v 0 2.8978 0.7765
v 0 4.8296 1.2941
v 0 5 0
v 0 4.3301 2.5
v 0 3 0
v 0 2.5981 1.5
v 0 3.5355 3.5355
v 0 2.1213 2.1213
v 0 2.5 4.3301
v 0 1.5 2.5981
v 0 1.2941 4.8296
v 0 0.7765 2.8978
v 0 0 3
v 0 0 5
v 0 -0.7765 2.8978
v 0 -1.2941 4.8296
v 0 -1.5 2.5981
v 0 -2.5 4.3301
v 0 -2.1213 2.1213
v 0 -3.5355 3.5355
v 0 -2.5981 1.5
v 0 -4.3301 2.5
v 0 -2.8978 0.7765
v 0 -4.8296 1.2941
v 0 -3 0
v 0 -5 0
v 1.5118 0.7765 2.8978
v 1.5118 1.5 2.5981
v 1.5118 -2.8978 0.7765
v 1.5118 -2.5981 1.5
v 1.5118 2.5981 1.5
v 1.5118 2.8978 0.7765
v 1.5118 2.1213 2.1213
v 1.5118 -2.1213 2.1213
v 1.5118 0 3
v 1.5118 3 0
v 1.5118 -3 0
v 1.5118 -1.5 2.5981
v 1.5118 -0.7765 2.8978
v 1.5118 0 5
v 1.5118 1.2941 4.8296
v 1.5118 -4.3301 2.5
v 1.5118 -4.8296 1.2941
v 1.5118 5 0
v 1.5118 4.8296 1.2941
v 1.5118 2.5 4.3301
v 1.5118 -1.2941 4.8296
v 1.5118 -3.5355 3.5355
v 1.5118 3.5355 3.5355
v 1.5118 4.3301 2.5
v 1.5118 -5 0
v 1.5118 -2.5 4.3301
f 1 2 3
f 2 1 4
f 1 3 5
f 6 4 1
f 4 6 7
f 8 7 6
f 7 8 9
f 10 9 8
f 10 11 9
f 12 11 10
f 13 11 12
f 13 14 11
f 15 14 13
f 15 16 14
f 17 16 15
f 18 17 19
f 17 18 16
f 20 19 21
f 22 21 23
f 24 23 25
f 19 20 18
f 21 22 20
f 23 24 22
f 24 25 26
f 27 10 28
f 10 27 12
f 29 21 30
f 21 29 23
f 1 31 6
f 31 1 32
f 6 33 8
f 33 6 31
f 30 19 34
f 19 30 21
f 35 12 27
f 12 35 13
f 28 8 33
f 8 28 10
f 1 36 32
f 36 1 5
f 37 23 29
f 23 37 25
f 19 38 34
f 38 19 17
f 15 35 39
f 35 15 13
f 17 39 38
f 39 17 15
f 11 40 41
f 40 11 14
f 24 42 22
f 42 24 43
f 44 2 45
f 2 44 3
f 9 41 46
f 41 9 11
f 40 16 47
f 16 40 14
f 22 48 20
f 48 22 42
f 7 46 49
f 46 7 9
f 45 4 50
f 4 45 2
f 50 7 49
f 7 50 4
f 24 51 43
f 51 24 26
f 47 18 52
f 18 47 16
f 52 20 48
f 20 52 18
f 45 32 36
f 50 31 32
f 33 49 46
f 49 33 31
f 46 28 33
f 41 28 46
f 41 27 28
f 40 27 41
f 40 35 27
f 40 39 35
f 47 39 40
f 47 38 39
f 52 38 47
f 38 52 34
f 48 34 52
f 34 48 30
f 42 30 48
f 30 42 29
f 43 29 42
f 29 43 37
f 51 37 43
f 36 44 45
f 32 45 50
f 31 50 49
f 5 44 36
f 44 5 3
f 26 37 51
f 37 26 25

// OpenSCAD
// file: ../build_environments.scad
// build_environments.scad: modules to build level sections
//

module pool(diameter=10.0, wall_height=2.0, step_width=3.0, connections=[])
{
    difference() {
        union() {
        difference() {
            cylinder(h=0.5,r1=diameter+step_width,r2=diameter+step_width,$fn=48);
            translate([0,0,-0.1])
                cylinder(h=0.7,r1=diameter,r2=diameter,$fn=48);
        }
        difference() {
            cylinder(h=wall_height,r1=diameter+step_width+1.0,r2=diameter+step_width+1.0,$fn=48);
            translate([0,0,-0.1])
                cylinder(h=wall_height+0.2,r1=diameter+step_width,r2=diameter+step_width,$fn=48);
        }
        }
    
        for (c = connections)
        {
            rotate([0,90,0]) {
                angle = atan2(c[1],c[0]);
                rotate([-angle,0,0]) {
                    cylinder(h=diameter+5.0,r1=c[2],r2=c[2],$fn=48);
                }
            }
        }
    }
}

module straight(length=10.0, width=2.0, dy1=0.0, dy2=0.0, dz=0.0)
{
    dims = [0, 0, 0, 0, 0, (dz/length)];
    matrix = [
        [ 1, dims[0], dims[1], 0 ],
        [ dims[2], 1, dims[4], 0 ],
        [ dims[5], dims[3], 1, 0 ],
        [ 0, 0, 0, 1 ]
    ];
    multmatrix(matrix)
    difference() {
        translate([dy1,0,0])
        union() {
            rotate([0,90,0]) {
                difference() {
                    cylinder(h=(length-dy1-dy2),r1=width+1.0,r2=width+1.0,$fn=24);
                    translate([0,0,-0.1])
                        cylinder(h=(length-dy1-dy2+0.2),r1=width,r2=width,$fn=24);
                }
                difference() {
                    cylinder(h=1.0,r1=width+2.0,r2=width+2.0,$fn=24);
                    translate([0,0,-0.1])
                        cylinder(h=1.2,r1=width,r2=width,$fn=24);
                }
                translate([0,0,(length-dy1-dy2)-1.0]) {
                    difference() {
                        cylinder(h=1.0,r1=width+2.0,r2=width+2.0,$fn=24);
                        translate([0,0,-0.1])
                            cylinder(h=1.2,r1=width,r2=width,$fn=24);
                    }
                }
            }
        }
        translate([0,0,-(2*width+4.0)/2])
            cube([3*length,3*length,2*width+4.0],center=true);
    }
}

module curve(p0=[0,0], center=[0,0], dir=1, angle=0.0, width=2.0)
{
    radius = sqrt((p0[0]-center[0])*(p0[0]-center[0]) + (p0[1]-center[1])*(p0[1]-center[1]));
    if (dir == 0) {
        difference() {
            rotate([0,0,-90])
            difference() {
                rotate_extrude(angle = angle, convexity = 10, $fn=32)
                    translate([radius, 0, 0])
                        circle(r = width+1.0,$fn=24);
                rotate([0,0,-1.0])
                    rotate_extrude(angle = angle+2.0, convexity = 10, $fn=32)
                        translate([radius, 0, 0])
                            circle(r = width,$fn=24);
            }
            translate([0,0,-(2*width+4.0)/2])
                cube([5*radius,5*radius,2*width+4.0],center=true);
        }
    }
    else {
        difference() {
            rotate([0,0,90])
            difference() {
                rotate_extrude(angle = -angle, convexity = 10, $fn=32)
                    translate([radius, 0, 0])
                        circle(r = width+1.0,$fn=24);
                rotate([0,0,1.0])
                    rotate_extrude(angle = -angle-2.0, convexity = 10, $fn=32)
                        translate([radius, 0, 0])
                            circle(r = width,$fn=24);
            }
            translate([0,0,-(2*width+4.0)/2])
                cube([5*radius,5*radius,2*width+4.0],center=true);
        }
    }

}

// test pool
//pool(diameter=12.0000, wall_height=3.0000, step_width=3.0000, connections=[[0.0000,-26.0000,2.0000], [23.6074,0.0000,2.0000]]);

// test straight, slope
//straight(length=26.0000, width=2.0000, dy1=11.8322, dy2=6.7082, dz=0.0000);
//straight(length=29.1549, width=12.0000, dy1=0.0000, dy2=0.0000, dz=-15.0000);

// test curve
//curve(p0=[23.6074, 0.0000], center=[23.6074, 5.0000], dir=0, angle=60.1011, width=2.0000);
//curve(p0=[33.6426, 12.4219], center=[37.9771, 9.9295], dir=1, angle=120.4627, width=2.0000);
// main file
use <../build_environments.scad>;
straight(length=8.9280, width=3.0000, dy1=0.0000, dy2=7.4162, dz=0.0000);
